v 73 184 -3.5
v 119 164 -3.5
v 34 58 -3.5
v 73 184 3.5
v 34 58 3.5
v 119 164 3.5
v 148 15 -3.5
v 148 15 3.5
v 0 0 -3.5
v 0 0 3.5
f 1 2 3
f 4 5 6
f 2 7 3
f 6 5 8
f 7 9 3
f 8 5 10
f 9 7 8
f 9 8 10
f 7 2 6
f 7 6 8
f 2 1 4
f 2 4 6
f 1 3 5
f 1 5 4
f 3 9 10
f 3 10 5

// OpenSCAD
polyhedron(points=[[73.0, 184.0, -3.5], [34.0, 58.0, -3.5], [119.0, 164.0, -3.5], [73.0, 184.0, 3.5], [34.0, 58.0, 3.5], [119.0, 164.0, 3.5], [148.0, 15.0, -3.5], [148.0, 15.0, 3.5], [0.0, 0.0, -3.5], [0.0, 0.0, 3.5]], faces=[[0, 2, 1], [3, 4, 5], [2, 6, 1], [5, 4, 7], [6, 8, 1], [7, 4, 9], [8, 6, 7], [8, 7, 9], [6, 2, 5], [6, 5, 7], [2, 0, 3], [2, 3, 5], [0, 1, 4], [0, 4, 3], [1, 8, 9], [1, 9, 4]], convexity=20);
